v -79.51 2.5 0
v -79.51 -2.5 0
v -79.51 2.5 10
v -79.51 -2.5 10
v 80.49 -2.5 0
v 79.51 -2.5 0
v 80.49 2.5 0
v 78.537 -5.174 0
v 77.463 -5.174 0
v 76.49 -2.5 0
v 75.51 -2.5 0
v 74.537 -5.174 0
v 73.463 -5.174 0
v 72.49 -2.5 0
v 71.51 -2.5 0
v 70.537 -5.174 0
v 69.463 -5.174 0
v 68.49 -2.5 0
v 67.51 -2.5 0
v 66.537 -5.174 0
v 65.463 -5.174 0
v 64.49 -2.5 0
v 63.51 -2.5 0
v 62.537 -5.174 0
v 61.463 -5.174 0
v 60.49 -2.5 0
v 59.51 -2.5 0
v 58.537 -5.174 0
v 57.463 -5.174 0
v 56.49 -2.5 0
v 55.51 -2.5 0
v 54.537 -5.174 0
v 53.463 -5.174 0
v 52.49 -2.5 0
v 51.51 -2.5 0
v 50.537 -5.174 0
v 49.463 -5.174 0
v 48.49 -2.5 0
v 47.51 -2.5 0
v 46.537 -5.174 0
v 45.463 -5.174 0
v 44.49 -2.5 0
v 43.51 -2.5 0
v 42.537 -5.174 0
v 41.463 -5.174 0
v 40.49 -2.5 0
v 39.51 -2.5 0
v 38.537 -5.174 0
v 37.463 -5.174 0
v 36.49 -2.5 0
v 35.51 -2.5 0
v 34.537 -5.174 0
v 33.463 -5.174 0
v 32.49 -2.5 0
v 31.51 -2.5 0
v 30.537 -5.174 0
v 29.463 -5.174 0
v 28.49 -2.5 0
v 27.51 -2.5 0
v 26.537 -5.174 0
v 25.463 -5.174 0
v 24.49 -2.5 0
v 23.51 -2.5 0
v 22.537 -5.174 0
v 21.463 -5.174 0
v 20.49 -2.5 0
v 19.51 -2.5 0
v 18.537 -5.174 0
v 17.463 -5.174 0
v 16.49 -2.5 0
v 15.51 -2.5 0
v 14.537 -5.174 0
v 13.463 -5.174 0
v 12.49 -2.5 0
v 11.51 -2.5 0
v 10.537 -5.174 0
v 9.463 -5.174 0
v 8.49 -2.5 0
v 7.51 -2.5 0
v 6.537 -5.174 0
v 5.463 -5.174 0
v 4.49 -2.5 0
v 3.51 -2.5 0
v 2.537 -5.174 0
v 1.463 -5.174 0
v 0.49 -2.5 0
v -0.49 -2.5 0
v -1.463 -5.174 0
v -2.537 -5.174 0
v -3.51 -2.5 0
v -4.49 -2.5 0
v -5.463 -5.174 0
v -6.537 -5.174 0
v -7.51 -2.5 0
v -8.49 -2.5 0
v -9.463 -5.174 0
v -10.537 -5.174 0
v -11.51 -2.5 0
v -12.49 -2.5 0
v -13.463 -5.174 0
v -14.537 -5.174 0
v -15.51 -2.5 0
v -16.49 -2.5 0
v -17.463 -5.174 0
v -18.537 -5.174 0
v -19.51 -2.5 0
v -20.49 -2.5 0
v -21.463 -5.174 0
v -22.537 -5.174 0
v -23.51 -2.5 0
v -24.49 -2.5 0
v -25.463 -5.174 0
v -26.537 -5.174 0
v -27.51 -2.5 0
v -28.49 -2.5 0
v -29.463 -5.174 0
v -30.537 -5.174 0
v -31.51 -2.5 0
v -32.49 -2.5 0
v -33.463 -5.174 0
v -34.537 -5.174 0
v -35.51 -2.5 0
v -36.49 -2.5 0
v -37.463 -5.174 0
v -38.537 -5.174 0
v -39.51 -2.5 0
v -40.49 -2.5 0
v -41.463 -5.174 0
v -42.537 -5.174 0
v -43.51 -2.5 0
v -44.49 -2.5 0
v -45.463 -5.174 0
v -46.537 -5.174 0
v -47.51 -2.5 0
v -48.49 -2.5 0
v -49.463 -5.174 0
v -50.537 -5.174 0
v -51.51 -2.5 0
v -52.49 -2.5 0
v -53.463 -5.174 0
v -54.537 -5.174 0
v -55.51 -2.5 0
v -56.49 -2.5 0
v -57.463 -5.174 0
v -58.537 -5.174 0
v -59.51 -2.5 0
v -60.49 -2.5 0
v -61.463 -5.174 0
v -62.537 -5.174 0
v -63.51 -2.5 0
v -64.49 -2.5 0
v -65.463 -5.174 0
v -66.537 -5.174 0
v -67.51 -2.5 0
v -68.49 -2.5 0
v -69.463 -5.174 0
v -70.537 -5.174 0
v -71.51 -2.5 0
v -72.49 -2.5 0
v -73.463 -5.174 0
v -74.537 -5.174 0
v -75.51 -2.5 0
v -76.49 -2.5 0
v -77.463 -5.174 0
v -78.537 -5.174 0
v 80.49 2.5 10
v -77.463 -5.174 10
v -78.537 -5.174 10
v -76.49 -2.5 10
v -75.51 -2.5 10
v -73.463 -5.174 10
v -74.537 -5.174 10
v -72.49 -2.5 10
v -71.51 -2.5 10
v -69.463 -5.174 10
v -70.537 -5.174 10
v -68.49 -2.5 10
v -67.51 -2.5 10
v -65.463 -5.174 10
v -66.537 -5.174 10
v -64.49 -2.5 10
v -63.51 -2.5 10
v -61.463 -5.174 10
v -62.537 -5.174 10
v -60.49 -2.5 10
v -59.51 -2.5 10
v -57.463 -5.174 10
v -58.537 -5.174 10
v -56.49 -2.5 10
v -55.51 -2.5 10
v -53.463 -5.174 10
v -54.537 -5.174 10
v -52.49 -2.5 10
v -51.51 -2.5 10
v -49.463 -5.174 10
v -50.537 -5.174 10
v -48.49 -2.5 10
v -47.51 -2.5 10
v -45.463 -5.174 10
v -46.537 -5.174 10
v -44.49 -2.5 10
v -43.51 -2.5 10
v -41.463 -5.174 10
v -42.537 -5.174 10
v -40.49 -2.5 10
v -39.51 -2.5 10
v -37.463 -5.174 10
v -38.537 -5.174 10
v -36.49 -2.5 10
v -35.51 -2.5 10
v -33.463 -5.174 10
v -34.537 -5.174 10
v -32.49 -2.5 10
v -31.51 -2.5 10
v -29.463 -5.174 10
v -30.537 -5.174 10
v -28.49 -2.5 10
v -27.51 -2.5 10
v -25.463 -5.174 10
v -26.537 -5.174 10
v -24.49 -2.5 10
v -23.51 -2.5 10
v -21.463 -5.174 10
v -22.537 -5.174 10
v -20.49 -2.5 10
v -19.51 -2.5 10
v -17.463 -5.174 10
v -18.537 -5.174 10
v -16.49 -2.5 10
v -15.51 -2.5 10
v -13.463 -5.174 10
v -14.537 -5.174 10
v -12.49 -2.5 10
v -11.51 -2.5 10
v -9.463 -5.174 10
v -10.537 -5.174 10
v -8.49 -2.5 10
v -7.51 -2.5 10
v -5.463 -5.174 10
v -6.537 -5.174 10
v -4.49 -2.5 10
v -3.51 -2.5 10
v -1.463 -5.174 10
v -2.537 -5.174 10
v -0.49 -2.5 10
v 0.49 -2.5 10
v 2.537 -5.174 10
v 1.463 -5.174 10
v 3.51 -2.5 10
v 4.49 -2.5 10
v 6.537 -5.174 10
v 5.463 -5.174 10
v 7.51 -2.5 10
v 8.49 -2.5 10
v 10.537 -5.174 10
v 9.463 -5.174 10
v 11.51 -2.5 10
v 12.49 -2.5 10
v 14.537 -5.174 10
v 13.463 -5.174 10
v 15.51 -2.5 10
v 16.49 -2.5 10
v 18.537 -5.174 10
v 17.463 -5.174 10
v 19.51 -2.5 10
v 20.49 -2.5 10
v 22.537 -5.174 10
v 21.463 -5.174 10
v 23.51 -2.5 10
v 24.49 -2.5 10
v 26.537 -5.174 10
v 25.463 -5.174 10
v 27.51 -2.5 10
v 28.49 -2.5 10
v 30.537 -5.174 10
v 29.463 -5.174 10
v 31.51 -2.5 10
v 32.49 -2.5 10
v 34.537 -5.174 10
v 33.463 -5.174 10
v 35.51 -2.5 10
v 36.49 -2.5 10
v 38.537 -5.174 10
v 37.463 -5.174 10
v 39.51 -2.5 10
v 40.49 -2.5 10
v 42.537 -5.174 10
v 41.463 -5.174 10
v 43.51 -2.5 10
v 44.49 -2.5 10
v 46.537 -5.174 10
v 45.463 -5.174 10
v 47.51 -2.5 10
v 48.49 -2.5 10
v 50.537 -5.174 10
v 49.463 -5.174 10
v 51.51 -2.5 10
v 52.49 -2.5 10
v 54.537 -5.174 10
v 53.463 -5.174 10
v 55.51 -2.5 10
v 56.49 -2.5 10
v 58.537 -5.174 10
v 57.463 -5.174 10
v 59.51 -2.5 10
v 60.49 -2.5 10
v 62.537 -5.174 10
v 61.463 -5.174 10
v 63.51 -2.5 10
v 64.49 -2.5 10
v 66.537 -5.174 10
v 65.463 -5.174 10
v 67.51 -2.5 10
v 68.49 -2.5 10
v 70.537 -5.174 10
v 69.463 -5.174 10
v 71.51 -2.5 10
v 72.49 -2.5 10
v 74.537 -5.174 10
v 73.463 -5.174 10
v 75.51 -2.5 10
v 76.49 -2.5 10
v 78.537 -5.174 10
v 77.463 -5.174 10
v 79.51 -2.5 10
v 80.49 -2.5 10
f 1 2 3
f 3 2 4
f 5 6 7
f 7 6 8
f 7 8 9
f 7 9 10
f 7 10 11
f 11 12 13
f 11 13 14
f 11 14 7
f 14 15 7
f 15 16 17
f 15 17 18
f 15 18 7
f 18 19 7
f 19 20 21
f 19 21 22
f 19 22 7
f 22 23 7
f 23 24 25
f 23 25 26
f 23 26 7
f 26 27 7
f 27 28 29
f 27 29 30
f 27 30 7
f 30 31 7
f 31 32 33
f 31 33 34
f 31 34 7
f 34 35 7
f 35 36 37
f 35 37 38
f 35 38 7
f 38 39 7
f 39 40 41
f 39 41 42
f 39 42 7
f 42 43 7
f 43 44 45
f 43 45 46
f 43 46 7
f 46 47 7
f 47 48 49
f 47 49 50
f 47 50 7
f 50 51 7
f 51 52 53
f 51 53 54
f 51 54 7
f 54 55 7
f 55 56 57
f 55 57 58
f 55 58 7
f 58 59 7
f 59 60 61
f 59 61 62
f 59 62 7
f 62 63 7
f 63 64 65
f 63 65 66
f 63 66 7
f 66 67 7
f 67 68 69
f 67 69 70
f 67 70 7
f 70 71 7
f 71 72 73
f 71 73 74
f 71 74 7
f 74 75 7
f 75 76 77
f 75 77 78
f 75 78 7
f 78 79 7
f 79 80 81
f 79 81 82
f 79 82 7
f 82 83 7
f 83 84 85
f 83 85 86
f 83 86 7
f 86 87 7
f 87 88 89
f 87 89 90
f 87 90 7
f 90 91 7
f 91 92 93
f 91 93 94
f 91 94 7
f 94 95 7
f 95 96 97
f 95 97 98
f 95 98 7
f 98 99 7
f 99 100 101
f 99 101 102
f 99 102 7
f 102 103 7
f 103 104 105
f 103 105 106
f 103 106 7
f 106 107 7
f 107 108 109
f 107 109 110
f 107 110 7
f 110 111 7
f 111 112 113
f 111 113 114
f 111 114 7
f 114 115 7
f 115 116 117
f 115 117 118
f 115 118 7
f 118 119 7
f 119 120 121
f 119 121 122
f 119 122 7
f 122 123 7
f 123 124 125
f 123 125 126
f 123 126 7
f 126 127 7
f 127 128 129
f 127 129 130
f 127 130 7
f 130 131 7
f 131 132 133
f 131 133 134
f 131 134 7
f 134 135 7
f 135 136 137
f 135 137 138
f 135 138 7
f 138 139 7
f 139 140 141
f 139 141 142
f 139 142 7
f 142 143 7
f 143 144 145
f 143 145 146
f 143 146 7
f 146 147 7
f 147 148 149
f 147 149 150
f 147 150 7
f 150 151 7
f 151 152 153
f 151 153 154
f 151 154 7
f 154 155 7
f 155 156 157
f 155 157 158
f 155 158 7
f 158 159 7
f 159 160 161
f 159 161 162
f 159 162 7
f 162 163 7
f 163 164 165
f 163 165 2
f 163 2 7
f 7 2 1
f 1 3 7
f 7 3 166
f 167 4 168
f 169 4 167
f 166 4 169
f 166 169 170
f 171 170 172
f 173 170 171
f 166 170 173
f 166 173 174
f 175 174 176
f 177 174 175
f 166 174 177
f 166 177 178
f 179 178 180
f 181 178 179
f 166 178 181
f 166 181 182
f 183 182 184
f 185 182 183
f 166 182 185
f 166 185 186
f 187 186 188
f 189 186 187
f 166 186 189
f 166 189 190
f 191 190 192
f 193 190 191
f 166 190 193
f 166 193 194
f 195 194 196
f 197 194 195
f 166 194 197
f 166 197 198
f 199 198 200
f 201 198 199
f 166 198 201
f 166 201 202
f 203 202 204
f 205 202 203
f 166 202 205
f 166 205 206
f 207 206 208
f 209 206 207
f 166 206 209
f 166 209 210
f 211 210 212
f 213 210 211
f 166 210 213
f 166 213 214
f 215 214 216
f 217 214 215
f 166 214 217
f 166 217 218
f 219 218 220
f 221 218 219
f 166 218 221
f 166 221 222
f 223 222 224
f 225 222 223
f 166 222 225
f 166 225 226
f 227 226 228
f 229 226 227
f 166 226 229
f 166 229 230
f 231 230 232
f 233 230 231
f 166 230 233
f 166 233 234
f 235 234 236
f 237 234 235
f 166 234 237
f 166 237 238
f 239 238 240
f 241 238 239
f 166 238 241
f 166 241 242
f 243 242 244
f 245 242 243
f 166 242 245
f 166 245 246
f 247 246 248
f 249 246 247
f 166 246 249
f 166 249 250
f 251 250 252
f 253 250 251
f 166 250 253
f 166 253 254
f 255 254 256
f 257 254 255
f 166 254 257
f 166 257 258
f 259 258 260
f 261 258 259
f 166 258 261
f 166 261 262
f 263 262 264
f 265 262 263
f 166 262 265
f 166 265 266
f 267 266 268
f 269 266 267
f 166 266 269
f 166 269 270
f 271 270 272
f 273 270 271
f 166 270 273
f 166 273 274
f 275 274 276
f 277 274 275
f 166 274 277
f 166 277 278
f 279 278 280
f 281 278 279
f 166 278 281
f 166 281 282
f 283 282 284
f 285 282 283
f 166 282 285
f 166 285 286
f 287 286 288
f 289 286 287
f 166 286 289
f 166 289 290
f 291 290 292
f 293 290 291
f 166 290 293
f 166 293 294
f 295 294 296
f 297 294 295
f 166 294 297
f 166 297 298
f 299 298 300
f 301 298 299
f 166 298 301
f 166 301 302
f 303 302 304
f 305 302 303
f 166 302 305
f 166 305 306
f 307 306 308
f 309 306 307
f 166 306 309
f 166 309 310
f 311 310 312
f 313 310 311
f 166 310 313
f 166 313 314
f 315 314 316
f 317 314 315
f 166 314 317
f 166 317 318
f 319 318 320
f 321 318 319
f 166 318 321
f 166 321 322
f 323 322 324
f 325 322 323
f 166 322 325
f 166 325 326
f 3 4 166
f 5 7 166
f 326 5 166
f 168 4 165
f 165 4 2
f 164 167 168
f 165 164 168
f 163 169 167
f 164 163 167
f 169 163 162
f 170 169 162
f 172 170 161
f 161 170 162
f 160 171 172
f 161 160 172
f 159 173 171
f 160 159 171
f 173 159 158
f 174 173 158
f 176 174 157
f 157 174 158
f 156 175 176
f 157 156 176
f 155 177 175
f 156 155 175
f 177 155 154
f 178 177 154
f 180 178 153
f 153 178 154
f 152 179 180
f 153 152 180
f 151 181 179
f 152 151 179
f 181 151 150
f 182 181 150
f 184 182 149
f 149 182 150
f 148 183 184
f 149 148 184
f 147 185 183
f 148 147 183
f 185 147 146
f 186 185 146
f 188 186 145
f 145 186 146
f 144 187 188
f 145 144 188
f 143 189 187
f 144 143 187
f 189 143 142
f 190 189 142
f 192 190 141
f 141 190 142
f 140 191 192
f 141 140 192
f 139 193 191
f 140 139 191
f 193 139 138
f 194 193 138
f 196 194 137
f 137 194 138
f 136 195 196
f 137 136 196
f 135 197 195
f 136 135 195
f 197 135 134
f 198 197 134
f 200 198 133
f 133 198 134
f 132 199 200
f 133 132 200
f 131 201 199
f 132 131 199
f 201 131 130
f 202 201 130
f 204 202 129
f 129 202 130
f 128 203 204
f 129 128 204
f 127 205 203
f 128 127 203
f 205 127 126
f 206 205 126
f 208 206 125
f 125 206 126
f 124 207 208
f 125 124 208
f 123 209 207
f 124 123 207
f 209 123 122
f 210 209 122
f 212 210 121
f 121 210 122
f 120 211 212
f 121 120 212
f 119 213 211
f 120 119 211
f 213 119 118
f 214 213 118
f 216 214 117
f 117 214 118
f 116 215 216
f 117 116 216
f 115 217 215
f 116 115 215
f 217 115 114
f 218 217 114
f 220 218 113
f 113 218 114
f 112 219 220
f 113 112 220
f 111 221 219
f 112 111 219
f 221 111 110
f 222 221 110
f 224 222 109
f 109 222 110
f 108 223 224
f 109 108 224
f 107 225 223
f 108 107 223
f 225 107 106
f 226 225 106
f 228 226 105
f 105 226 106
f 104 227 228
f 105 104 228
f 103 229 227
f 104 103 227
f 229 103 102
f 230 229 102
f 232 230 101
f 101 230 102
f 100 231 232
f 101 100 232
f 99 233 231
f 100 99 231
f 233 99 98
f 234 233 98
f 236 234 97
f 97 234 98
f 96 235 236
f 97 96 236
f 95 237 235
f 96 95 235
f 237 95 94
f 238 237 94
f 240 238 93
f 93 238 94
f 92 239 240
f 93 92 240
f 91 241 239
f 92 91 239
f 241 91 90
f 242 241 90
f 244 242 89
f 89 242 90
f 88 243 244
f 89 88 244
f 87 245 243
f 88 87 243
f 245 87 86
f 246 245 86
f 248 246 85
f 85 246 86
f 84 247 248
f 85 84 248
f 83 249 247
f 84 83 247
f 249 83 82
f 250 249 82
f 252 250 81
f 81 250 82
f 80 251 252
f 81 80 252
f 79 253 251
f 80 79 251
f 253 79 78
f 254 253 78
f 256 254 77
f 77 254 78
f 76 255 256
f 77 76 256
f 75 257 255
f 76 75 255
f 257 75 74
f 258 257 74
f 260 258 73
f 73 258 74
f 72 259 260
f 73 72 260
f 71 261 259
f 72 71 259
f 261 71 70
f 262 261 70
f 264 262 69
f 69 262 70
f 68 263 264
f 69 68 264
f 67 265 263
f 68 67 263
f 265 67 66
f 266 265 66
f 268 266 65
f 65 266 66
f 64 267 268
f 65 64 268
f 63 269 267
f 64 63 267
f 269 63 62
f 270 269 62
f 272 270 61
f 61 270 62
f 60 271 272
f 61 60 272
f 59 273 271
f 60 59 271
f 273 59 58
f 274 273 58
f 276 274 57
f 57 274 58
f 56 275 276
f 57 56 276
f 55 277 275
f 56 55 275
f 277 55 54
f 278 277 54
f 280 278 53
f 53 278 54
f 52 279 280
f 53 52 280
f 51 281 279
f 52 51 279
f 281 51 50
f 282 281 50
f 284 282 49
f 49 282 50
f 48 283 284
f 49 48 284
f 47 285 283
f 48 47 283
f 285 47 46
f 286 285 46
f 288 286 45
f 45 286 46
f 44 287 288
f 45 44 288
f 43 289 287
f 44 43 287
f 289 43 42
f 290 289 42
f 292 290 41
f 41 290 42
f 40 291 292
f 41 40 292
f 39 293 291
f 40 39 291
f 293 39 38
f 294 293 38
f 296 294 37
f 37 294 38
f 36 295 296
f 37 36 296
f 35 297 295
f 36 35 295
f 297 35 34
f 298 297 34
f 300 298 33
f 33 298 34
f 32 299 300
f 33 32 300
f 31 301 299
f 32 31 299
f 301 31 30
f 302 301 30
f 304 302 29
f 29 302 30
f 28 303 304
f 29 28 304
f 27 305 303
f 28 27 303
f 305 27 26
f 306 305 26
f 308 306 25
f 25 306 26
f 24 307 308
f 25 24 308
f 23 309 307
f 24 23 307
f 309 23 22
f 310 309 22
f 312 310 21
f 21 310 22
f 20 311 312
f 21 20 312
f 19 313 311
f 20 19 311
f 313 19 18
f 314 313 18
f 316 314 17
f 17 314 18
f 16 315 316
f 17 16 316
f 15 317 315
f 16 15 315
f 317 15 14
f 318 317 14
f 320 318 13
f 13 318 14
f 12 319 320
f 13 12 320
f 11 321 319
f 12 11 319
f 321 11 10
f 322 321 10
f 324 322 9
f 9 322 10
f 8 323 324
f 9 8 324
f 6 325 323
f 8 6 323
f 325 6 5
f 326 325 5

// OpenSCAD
// file: rack_and_pinion.scad
// http://www.thingiverse.com/thing:1227374
// Customizable rack and pinion by rushman is licensed under the Creative Commons - Attribution license.
// by rushman, published Dec 26, 2015

use <MCAD/involute_gears.scad>

height = 4;

circular_pitch=180;
number_of_pinion_teeth=16; // [12:1:200]
pressure_angle = 28;

spacing_between_objects = 0; // [0:real, 5:apart]

function pitch_radius(number_of_teeth, circular_pitch) = (number_of_teeth * circular_pitch / 180) / 2;

function linear_tooth_size(number_of_teeth, circular_pitch) = 
    2*sin(360/number_of_teeth/2)*pitch_radius(number_of_teeth, circular_pitch);


module rack(circular_pitch, number_of_pinion_teeth, number_of_rack_teeth, height,
pressure_angle=28,
clearance=0.2) 

{
    pitch_diameter  =  number_of_pinion_teeth * circular_pitch / 180;
    pitch_radius = pitch_diameter/2;

    base_radius = pitch_radius*cos(pressure_angle);

    // Diametrial pitch: Number of teeth per unit length.
    pitch_diametrial = number_of_pinion_teeth / pitch_diameter;

    // Addendum: Radial distance from pitch circle to outside circle.
    addendum = 1/pitch_diametrial;

    //Outer Circle
    outer_radius = pitch_radius+addendum;

    // Dedendum: Radial distance from pitch circle to root diameter
    dedendum = addendum + clearance;

    root_radius = pitch_radius-dedendum;
    half_thick_angle = (360 / number_of_pinion_teeth) / 4;

    echo("pitch_radius", pitch_radius);
    echo("outer_radius", outer_radius);
    echo("pitch_diametrial", pitch_diametrial);
    echo("addendum", addendum);
    echo("dedendum", dedendum);

    O = 360/number_of_pinion_teeth;
    th=2*sin(O/2)*pitch_radius;
    rack_teeth=number_of_rack_teeth;
    echo("tooth_length", th);
    echo("rack_length", th*rack_teeth);

    union() {
        for (i=[0:rack_teeth]) {
            translate([0,i*th,0])
            linear_extrude(height)
            involute_gear_tooth(
                pitch_radius=pitch_radius,
                root_radius=root_radius,
                base_radius=base_radius,
                outer_radius=outer_radius,
                half_thick_angle=half_thick_angle,
                involute_facets=0);
        }
        cube([root_radius,th*rack_teeth, height]);
    }
}    


module pinion(circular_pitch, number_of_teeth, height, pressure_angle=28, clearance=0.2) {
    rotate([0,0,(number_of_teeth % 2 == 0) ? 180/number_of_teeth:0])
    gear(number_of_teeth=number_of_teeth,
            circular_pitch=circular_pitch,
            pressure_angle=pressure_angle,
            clearance = clearance,
            gear_thickness=height,
            rim_thickness=height,
            rim_width=5,
            hub_thickness=4,
            hub_diameter=4,
            bore_diameter=5,
            circles=0,
            backlash=0,
            twist=0,
            involute_facets=0,
            flat=false);
    
}

anim_phase = $t > 0.5 ? (1-$t) : $t;

th = linear_tooth_size(number_of_pinion_teeth, circular_pitch);

num_rack_teeth=ceil(number_of_pinion_teeth)/2;
translate([0,-th*number_of_pinion_teeth*anim_phase,0])
rack(circular_pitch, number_of_pinion_teeth, num_rack_teeth, height, pressure_angle);

translate([spacing_between_objects, 0, 0])
translate([pitch_radius(number_of_pinion_teeth, circular_pitch)*2,0,0])   
    rotate([0,0,anim_phase*360]) {
        color([0.3, 0.5, 0.8])
        pinion(circular_pitch, number_of_pinion_teeth, height, pressure_angle);
        
    }
$fs=0.5;


//ma=15;
//d=18;
//echo(cos(ma)*d);
// main file
// Rack and pinion gears GPL (c) SASA October 2013.
//
// Very simple rack and pinion gear based on GPL code.
//
// I've made corrections to both rack and gear code I used (below) and unified
// and simplified both bits of code.  Corrects the use of circular pitch so
// rack and pinion match nicely.  Ammendments to the code and interface to
// simplify use and improve readability. Many bells and whistles dropped in
// favour of being dead simple.  I also opted for hard wiring the pressure
// angle to 20 degrees since this seemed a kind of standard.
//
// Based on the works (thanks!): Parametric Involute Bevel and Spur Gears by
// GregFrost GNU GPL license.  http://www.thingiverse.com/thing:3575 Parametric
// Modular Rack by Mark "Ckaos" Moissette GNU GPL license.  (Rack based on the
// work of MattMoses and Fdavies
// http://forums.reprap.org/read.php?1,51452,52099#msg-52099 and Forrest Higgs:
// 
// The originals have many fine additions such as helical gears which I've
// dropped in favour of simplicity (as befits my needs) - it wouldn't be a big
// jobs to nobble my changes backwards or their features forwards.

pi=3.1415926535897932384626433832795;
$fn=50;

// examples of usage
// include this in your code:
use <rack_and_pinion.scad>
// then:
// a simple rack
rack(4,40,10,5);//CP (mm/tooth), width (mm), thickness(of base) (mm), # teeth
// a simple pinion and translation / rotation to make it mesh the rack
//translate([0,-8.5,0])rotate([0,0,360/10/2]) pinion(4,10,10,5);





module rack(cp, N, width, thickness){
// cp = circular pitch - for rack = pitch in mm/per tooth
// N = number of teeth
// width = width of rack
// thickness = thickness of support under teeth (0 for no support)

	a = 1.0*cp/pi; // addendum (also known as "module")
	d = 1.1*cp/pi; // dedendum (this is set by a standard)
	height=(d+a);

	// find the tangent of pressure angle once
	tanPA = tan(20);
	// length of bottom and top horizontal segments of tooth profile
	botL = (cp/2 - 2*d*tanPA);
	topL = (cp/2 - 2*a*tanPA);

	slantLng=tanPA*height;
	realBase=2*slantLng+topL;

	offset=topL+botL+2*slantLng;
	length=(realBase+botL)*N;

	supportSize=width;
	translate([botL/2,0,0])
	rotate([90,0,0]){
		translate([0,supportSize/2,0]){
			union(){
				cube(size=[length,width,thickness],center=true);
				for (i = [0:N-1]){
					translate([i*offset-length/2+realBase/2,0,thickness/2]){
						trapezoid([topL,supportSize],[realBase,supportSize],height);
						}
					}
				}
			}
		}
	}

module pinion (cp, N, width, shaft_diameter, backlash=0){
// cp= circular pitch - for pinion pitch in mm/per as measured along the ptich radius (~1/2 way up tooth)
// N= number of teeth
// width= width of the gear
// shaft_diameter= diameter of hole for shaft
// backlash - I think this is just a bodge for making things fit when printed but I never tested it

	if (cp==false && diametral_pitch==false) 
		echo("MCAD ERROR: pinion module needs either a diametral_pitch or cp");

	//Convert diametrial pitch to our native circular pitch
	cp = (cp!=false?cp:180/diametral_pitch);

	// Pitch diameter: Diameter of pitch circle.
	pitch_diameter  =  N * cp / pi;
	pitch_radius = pitch_diameter/2;
	echo ("Teeth:", N, " Pitch radius:", pitch_radius);
	// Base Circle
	base_radius = pitch_radius*cos(20);

	// Addendum: Radial distance from pitch circle to outside circle.
	addendum = cp/pi;

	//Outer Circle
	outer_radius = pitch_radius+addendum;

	// Dedendum: Radial distance from pitch circle to root diameter
	dedendum = addendum*1.1;

	// Root diameter: Diameter of bottom of tooth spaces.
	root_radius = pitch_radius-dedendum;

	backlash_angle = backlash / pitch_radius * 180 / pi;
	half_thick_angle = (360 / N - backlash_angle) / 4;

	difference(){
		linear_extrude (height=width, convexity=10, twist=0)
		pinion_shape(N, pitch_radius = pitch_radius, root_radius = root_radius,
			base_radius = base_radius, outer_radius = outer_radius,
			half_thick_angle = half_thick_angle, involute_facets=0);

		translate([0,0,-1]) cylinder(r=shaft_diameter/2,h=2+width);
		}

	echo("Root radius =",root_radius,"\nPitch radius=",pitch_radius,"\n Tip radius=",outer_radius,"\n");
	}

module pinion_shape ( N, pitch_radius, root_radius, base_radius, outer_radius, half_thick_angle, involute_facets) {
	union(){
		rotate (half_thick_angle) circle ($fn=N*2, r=root_radius);
		for (i = [1:N]) {
			rotate ([0,0,i*360/N]) {
				involute_pinion_tooth (
					pitch_radius = pitch_radius,
					root_radius = root_radius,
					base_radius = base_radius,
					outer_radius = outer_radius,
					half_thick_angle = half_thick_angle,
					involute_facets=involute_facets);
				}
			}
		}
	}

module involute_pinion_tooth ( pitch_radius, root_radius, base_radius, outer_radius, half_thick_angle, involute_facets) {
	min_radius = max (base_radius,root_radius);

	pitch_point = involute (base_radius, involute_intersect_angle (base_radius, pitch_radius));
	pitch_angle = atan2 (pitch_point[1], pitch_point[0]);
	centre_angle = pitch_angle + half_thick_angle;

	start_angle = involute_intersect_angle (base_radius, min_radius);
	stop_angle = involute_intersect_angle (base_radius, outer_radius);

	res=(involute_facets!=0)?involute_facets:($fn==0)?5:$fn/4;

	union () {
		for (i=[1:res])
		assign ( point1=involute (base_radius,start_angle+(stop_angle - start_angle)*(i-1)/res), point2=involute (base_radius,start_angle+(stop_angle - start_angle)*i/res)) {
			assign (
				side1_point1=rotate_point (centre_angle, point1),
				side1_point2=rotate_point (centre_angle, point2),
				side2_point1=mirror_point (rotate_point (centre_angle, point1)),
				side2_point2=mirror_point (rotate_point (centre_angle, point2))) {
				polygon ( points=[[0,0],side1_point1,side1_point2,side2_point2,side2_point1], paths=[[0,1,2,3,4,0]]);
				}
			}
		}
	}

// Mathematical Functions
//===============

// Finds the angle of the involute about the base radius at the given distance (radius) from it's center.
//source: http://www.mathhelpforum.com/math-help/geometry/136011-circle-involute-solving-y-any-given-x.html

function involute_intersect_angle (base_radius, radius) = sqrt (pow (radius/base_radius, 2) - 1) * 180 / pi;

// Calculate the involute position for a given base radius and involute angle.

function rotated_involute(rotate,base_radius,involute_angle)=[cos(rotate)*involute(base_radius, involute_angle)[0]+sin(rotate)*involute(base_radius, involute_angle)[1],cos(rotate)*involute(base_radius, involute_angle)[1]-sin(rotate)*involute(base_radius, involute_angle)[0]];

function mirror_point(coord)=[coord[0],-coord[1]];

function rotate_point(rotate,coord)=[cos(rotate)*coord[0]+sin(rotate)*coord[1],cos(rotate)*coord[1]-sin(rotate)*coord[0]];

function involute (base_radius, involute_angle)=[base_radius*(cos(involute_angle)+involute_angle*pi/180*sin(involute_angle)),base_radius*(sin(involute_angle)-involute_angle*pi/180*cos(involute_angle))];




module trapezoid(top,base,height){
	//echo ("test",base[0]);
	basePT1=[ -base[0]/2, base[1]/2, 0];
	basePT2=[ base[0]/2, base[1]/2, 0];
	basePT3=[ base[0]/2, -base[1]/2, 0];
	basePT4=[ -base[0]/2, -base[1]/2, 0];
	topPT1=[ -top[0]/2, top[1]/2, height];
	topPT2=[ top[0]/2, top[1]/2, height];
	topPT3=[ top[0]/2, -top[1]/2, height];
	topPT4=[ -top[0]/2, -top[1]/2, height];
	polyhedron(points=[ basePT1, basePT2, basePT3, basePT4, topPT1, topPT2, topPT3, topPT4],triangles=[[0,1,2], [0,2,3],[3,7,0], [7,4,0],[1,6,2], [1,5,6],[2,6,3], [3,6,7],[5,1,0],[4,5,0],[7,5,4],[5,7,6]]);
	}
